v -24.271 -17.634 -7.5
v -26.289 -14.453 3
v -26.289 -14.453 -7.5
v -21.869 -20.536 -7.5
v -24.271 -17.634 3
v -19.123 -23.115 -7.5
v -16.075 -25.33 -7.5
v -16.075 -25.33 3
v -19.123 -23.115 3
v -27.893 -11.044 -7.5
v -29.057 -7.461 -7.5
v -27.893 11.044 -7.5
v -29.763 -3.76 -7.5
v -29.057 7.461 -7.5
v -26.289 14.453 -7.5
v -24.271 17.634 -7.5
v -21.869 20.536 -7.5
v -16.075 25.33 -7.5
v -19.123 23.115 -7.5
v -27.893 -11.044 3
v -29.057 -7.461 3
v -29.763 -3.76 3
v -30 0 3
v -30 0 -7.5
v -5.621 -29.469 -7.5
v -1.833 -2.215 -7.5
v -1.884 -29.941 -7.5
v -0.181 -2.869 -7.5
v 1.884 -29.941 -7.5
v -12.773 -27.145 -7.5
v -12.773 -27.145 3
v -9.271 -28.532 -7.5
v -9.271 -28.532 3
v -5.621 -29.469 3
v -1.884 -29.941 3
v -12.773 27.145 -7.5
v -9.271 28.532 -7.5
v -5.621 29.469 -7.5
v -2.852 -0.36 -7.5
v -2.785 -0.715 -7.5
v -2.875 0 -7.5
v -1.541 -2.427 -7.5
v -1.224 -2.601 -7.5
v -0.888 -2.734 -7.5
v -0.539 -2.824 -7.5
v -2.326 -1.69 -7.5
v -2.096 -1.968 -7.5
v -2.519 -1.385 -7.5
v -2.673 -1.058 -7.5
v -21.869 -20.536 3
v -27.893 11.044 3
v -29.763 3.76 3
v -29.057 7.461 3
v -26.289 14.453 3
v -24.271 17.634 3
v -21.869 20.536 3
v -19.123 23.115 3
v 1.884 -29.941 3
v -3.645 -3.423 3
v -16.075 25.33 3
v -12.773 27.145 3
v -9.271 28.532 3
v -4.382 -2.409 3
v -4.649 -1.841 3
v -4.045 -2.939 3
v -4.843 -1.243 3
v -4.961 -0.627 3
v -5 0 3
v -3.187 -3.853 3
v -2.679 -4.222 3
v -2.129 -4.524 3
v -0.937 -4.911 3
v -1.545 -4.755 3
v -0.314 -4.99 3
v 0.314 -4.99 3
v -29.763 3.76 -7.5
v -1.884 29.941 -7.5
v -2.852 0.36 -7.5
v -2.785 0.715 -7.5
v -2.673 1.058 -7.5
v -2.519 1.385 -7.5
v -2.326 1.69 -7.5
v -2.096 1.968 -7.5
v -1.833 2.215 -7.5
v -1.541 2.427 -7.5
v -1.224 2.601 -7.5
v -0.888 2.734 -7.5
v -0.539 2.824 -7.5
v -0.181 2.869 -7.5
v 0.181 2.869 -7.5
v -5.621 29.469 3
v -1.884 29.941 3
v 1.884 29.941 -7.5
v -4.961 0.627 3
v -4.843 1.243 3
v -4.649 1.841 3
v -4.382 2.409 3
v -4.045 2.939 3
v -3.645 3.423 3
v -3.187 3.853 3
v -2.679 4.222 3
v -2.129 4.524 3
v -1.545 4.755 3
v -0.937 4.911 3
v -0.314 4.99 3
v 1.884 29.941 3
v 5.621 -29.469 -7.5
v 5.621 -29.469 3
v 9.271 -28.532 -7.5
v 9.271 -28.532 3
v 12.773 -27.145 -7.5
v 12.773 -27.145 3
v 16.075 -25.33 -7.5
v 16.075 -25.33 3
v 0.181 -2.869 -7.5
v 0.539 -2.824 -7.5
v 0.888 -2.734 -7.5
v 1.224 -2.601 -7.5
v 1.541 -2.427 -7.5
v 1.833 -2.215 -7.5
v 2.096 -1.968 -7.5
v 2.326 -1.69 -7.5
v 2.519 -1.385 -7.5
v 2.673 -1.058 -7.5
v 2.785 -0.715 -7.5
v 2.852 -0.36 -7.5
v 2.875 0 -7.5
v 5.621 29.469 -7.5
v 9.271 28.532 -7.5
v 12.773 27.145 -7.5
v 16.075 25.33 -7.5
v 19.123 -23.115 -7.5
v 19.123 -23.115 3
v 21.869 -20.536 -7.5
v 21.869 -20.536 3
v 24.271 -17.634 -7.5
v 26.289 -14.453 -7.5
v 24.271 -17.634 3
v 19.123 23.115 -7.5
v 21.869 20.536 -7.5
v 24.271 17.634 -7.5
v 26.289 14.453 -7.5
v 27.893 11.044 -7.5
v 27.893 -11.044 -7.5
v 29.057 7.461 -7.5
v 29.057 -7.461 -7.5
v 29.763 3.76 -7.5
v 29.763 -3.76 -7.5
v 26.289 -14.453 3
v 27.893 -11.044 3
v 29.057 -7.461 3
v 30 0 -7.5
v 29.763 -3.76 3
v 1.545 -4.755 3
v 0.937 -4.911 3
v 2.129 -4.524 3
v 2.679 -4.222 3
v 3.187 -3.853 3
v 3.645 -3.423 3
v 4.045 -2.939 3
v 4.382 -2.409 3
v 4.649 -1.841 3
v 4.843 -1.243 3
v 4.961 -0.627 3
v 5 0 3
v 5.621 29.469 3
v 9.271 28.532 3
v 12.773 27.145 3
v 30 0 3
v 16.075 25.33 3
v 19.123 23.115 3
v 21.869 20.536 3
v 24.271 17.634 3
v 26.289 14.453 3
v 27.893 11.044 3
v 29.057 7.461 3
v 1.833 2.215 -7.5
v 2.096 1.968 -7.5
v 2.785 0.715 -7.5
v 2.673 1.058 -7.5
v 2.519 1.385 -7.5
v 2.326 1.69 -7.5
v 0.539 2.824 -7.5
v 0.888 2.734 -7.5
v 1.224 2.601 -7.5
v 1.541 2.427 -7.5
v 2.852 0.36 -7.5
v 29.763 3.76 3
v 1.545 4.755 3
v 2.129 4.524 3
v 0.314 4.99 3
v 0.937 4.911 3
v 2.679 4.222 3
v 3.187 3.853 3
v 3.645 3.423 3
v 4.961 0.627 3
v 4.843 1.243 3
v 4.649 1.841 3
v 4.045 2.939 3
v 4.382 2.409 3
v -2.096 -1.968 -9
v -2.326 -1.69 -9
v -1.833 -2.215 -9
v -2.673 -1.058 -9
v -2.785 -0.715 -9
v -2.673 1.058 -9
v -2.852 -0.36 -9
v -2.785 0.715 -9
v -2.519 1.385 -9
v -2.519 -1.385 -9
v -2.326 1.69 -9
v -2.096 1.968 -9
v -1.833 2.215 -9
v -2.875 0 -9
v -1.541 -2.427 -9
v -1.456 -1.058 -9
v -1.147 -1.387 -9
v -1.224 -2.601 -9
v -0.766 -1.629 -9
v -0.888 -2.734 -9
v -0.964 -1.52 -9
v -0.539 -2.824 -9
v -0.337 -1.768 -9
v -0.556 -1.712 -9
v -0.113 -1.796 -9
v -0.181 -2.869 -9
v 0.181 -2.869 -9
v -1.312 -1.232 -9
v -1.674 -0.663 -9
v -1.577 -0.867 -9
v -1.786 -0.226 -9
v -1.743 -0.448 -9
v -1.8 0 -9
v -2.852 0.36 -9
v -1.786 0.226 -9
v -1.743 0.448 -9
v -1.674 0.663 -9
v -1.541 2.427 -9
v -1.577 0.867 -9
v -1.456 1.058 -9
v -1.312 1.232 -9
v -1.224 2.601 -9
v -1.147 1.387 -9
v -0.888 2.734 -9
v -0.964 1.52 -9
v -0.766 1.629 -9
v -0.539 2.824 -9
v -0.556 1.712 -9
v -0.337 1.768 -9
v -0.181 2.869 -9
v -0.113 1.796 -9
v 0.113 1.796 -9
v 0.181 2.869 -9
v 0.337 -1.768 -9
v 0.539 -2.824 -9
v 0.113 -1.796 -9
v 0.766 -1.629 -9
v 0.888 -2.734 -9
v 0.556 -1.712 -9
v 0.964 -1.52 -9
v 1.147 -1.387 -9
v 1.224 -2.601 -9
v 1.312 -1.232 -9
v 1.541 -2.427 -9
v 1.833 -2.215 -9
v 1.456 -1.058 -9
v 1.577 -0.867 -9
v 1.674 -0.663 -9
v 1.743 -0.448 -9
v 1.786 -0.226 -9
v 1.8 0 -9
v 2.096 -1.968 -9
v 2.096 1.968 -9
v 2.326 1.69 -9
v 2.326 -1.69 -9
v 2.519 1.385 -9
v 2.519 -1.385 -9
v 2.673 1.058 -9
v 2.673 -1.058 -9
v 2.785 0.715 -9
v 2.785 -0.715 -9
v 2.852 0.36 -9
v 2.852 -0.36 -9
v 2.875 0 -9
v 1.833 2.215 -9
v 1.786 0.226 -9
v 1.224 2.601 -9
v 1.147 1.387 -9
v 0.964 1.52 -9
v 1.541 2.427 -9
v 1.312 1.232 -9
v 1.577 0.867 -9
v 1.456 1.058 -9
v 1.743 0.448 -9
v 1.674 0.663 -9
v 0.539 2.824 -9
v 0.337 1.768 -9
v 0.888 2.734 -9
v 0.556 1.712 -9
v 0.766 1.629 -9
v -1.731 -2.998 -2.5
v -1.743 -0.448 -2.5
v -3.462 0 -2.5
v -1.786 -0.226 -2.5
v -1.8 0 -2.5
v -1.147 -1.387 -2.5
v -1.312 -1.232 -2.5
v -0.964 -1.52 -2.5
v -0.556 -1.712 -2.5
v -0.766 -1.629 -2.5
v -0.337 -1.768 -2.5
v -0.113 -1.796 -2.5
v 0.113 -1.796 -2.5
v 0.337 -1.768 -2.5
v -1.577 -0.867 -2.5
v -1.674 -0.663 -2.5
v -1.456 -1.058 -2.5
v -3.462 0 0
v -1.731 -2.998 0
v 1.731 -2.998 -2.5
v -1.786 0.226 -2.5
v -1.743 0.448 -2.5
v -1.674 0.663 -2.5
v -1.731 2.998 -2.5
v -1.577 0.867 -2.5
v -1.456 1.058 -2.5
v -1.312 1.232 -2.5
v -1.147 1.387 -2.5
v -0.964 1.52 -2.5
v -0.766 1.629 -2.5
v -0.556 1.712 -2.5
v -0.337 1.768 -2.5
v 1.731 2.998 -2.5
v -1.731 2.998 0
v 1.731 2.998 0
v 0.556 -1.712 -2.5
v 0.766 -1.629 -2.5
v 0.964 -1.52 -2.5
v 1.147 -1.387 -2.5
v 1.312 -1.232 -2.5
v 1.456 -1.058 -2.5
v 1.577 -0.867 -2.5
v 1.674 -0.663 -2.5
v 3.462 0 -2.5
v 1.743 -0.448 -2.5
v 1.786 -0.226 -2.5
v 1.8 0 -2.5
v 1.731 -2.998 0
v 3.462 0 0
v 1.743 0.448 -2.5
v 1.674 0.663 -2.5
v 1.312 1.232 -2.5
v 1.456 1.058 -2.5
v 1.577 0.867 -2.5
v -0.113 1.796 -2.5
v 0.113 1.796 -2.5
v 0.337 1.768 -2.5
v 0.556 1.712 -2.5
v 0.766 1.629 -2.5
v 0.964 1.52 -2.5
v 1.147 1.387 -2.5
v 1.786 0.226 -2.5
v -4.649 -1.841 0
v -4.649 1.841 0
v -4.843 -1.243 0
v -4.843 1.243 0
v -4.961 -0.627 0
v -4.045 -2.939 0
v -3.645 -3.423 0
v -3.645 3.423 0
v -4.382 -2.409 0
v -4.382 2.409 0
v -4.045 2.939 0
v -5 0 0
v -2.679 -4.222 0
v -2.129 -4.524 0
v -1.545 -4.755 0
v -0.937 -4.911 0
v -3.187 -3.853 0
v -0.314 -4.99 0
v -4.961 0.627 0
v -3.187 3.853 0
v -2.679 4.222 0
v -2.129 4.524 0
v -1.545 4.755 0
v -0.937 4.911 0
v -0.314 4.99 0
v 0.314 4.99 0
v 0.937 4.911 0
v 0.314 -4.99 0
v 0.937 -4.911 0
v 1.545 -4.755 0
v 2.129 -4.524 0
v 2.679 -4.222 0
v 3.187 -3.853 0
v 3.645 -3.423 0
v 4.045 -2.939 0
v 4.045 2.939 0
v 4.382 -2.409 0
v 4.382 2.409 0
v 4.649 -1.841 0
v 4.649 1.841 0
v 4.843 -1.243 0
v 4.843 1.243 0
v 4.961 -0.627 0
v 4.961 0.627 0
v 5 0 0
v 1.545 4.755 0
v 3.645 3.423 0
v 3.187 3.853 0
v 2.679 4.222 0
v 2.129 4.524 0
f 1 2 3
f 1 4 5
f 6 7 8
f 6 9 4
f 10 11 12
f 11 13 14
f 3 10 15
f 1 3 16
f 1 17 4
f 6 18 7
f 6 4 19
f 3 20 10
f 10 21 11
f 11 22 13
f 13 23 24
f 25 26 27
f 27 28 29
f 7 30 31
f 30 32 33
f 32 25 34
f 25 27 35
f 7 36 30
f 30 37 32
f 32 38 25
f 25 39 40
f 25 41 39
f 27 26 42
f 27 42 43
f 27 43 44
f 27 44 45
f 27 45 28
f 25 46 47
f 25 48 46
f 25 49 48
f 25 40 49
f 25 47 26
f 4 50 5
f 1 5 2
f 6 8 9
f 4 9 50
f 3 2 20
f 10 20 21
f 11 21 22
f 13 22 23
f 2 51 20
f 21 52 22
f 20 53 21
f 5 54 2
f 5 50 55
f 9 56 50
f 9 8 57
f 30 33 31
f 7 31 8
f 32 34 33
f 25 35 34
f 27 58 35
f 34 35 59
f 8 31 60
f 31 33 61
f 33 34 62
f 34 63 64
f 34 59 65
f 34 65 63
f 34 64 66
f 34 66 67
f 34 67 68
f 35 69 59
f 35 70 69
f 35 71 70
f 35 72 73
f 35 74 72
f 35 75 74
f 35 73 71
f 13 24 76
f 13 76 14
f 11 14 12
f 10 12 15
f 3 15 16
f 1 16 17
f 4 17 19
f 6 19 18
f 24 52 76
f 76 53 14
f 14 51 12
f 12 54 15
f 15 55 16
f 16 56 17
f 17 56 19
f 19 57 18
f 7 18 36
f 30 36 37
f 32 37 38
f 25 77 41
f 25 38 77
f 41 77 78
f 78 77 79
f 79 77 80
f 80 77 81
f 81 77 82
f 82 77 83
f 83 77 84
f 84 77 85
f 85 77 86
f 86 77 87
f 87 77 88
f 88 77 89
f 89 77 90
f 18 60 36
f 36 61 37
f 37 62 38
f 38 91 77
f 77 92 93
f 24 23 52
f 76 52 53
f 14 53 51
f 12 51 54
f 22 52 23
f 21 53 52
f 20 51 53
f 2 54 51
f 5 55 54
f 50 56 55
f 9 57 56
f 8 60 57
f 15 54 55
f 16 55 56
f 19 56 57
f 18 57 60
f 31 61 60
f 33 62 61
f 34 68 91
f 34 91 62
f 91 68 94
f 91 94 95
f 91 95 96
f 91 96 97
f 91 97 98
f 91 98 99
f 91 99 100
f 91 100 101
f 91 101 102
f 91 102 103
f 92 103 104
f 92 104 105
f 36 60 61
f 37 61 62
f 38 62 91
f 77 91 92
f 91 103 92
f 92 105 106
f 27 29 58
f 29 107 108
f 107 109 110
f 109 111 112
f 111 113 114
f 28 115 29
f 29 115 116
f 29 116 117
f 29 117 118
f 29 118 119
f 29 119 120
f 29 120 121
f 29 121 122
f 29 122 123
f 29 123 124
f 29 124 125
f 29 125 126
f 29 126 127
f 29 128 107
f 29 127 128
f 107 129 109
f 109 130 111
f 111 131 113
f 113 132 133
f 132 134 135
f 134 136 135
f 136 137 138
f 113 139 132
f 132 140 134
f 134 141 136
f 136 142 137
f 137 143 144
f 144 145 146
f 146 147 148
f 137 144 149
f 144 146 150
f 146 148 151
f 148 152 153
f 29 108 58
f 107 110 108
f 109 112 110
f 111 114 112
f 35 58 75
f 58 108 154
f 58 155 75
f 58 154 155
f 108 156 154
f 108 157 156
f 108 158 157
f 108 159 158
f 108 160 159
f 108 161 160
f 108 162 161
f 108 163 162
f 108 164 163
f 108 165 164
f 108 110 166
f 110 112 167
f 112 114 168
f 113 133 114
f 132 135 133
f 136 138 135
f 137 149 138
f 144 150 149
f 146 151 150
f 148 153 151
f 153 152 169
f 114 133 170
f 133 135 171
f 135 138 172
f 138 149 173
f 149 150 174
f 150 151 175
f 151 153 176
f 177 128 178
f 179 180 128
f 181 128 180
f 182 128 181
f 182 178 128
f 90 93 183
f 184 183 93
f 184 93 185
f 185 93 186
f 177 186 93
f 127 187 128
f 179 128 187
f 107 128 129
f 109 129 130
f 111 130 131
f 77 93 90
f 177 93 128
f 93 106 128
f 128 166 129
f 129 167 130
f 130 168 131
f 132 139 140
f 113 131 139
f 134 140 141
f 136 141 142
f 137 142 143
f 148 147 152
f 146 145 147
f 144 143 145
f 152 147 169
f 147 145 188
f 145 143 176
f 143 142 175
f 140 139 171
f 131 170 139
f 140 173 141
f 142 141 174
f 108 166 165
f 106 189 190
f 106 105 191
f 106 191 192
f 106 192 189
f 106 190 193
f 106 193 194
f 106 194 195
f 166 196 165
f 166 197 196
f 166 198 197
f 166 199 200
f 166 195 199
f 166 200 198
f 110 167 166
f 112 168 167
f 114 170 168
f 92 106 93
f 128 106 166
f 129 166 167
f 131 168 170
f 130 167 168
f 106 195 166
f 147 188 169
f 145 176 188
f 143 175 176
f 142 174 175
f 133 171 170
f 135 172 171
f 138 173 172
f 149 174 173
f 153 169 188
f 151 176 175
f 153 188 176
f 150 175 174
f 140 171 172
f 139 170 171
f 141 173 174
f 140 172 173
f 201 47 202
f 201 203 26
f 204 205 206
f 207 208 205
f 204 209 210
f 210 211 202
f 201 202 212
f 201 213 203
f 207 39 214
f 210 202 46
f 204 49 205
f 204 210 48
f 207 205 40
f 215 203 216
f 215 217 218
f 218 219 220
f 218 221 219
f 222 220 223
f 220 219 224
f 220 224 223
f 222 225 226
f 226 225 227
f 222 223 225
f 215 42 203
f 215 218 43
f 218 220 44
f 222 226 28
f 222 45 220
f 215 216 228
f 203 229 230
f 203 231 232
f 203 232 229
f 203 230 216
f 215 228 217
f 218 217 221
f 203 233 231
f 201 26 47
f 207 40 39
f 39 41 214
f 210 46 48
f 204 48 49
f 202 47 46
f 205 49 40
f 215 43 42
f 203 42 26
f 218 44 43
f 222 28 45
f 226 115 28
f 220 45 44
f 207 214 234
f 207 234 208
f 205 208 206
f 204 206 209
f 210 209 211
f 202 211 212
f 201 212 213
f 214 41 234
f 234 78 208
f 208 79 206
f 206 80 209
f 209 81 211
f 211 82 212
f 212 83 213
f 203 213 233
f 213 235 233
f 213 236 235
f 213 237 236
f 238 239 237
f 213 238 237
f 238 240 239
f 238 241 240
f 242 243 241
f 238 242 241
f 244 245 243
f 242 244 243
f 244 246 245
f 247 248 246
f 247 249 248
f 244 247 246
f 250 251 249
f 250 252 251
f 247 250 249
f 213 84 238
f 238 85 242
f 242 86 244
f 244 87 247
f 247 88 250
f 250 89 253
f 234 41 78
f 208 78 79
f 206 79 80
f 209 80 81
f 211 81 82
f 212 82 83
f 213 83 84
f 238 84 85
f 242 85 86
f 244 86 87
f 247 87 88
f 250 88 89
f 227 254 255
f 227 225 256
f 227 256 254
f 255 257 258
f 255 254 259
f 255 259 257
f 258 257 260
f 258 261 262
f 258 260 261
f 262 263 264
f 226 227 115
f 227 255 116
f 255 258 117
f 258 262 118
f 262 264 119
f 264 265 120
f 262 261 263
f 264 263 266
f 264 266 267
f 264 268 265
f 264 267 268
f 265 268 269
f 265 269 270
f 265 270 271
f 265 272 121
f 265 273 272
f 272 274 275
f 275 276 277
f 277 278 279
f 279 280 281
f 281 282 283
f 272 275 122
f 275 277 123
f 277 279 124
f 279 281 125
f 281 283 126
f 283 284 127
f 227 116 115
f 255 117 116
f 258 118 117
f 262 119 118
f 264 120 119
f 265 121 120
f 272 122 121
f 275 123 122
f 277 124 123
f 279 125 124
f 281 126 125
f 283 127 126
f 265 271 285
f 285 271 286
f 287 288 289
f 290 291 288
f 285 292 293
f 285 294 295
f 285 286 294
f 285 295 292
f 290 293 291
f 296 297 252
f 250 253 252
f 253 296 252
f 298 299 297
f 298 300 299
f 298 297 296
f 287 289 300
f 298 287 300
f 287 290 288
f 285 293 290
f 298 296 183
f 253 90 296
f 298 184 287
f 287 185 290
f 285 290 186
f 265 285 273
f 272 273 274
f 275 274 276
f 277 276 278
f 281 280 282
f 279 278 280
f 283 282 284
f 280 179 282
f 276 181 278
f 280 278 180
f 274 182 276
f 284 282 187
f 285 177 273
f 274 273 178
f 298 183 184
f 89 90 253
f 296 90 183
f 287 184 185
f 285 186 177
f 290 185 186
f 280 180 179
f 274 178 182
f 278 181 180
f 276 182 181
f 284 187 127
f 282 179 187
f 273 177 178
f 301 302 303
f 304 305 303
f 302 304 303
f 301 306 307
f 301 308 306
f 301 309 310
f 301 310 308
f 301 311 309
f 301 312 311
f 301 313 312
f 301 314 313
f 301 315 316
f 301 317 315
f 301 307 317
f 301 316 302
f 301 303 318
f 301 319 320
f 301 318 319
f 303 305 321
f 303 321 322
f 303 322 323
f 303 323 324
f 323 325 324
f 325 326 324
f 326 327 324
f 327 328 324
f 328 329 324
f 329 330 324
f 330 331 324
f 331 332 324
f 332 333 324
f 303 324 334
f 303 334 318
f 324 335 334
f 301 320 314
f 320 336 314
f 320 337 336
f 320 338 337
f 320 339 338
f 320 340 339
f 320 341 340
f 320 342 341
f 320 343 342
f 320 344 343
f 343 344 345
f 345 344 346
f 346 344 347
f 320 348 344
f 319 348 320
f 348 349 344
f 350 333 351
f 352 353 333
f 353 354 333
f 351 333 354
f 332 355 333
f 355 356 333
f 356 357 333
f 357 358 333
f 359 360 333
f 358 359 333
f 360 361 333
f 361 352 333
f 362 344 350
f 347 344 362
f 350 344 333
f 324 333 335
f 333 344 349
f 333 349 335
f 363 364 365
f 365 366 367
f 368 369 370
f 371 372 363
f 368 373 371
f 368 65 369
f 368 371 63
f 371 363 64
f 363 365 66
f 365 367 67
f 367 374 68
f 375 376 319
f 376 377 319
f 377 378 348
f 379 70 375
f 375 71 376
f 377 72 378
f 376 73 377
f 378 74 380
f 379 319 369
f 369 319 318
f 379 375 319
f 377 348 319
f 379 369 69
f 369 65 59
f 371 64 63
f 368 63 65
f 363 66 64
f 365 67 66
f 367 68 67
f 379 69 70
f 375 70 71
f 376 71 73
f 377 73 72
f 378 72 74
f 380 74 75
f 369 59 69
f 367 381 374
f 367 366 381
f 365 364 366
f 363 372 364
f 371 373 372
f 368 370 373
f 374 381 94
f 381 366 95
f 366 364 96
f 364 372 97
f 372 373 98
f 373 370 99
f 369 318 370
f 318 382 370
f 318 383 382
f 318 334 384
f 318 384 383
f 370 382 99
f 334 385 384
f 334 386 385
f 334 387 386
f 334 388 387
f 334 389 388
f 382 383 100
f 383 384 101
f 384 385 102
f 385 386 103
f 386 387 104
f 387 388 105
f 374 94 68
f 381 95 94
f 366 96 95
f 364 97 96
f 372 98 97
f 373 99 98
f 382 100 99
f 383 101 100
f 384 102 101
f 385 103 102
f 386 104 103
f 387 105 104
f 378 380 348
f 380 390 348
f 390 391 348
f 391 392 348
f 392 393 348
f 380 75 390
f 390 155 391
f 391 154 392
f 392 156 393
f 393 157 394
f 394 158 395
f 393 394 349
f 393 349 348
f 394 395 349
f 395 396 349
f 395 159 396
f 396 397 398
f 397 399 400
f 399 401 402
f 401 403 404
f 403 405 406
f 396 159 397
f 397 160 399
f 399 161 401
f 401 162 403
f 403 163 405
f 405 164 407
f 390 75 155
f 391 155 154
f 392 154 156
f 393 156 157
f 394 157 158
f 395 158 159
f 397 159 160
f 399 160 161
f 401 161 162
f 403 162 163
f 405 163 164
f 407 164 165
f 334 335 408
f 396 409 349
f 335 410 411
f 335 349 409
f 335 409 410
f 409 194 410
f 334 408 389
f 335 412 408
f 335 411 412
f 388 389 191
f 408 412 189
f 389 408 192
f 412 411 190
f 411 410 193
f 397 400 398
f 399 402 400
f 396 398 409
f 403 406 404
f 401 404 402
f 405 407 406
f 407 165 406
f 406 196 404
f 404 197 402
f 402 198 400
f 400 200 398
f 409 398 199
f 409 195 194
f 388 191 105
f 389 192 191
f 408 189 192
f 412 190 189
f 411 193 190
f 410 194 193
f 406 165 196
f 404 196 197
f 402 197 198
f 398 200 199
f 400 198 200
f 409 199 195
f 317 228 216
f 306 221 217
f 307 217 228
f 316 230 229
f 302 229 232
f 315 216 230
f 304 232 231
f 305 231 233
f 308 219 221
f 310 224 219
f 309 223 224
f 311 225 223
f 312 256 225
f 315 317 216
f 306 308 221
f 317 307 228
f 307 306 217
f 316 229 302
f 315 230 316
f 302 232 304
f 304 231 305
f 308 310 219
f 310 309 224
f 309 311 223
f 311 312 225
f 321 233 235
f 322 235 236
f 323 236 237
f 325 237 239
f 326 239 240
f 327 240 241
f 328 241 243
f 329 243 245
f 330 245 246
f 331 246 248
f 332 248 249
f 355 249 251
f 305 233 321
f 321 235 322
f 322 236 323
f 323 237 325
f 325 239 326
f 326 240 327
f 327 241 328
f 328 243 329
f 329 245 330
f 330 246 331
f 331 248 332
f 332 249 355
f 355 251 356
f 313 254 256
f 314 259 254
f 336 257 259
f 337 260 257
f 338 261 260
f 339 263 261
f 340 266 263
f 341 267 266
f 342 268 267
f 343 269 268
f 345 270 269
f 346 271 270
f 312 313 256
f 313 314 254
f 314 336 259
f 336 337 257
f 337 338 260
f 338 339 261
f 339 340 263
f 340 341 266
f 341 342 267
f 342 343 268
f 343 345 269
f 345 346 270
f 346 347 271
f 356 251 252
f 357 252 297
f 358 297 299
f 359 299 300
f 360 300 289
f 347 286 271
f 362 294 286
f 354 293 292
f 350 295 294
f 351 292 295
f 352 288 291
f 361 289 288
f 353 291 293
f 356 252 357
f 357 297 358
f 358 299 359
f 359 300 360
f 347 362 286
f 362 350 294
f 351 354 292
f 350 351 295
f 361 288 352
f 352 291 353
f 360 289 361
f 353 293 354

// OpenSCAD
$fn = 50;

difference() {
	union() {
		translate(v = [0, 0, -7.5]) {
			cylinder(h = 10.5, r = 30.0);
		}
		#translate(v = [0, 0, -9.0]) {
			cylinder(h = 9, r = 2.875);
		}
	}
	union() {
		translate(v = [0, 0, 0]) {
			rotate(a = [0, 0, 0]) {
				difference() {
					union() {
						translate(v = [0, 0, -2.5]) {
							linear_extrude(height = 2.5) {
								polygon(points = [[3.4619999999999997, 0.0], [1.7310000000000003, 2.9981799479017264], [-1.7309999999999992, 2.9981799479017264], [-3.4619999999999997, 4.2397272186481365e-16], [-1.7310000000000014, -2.998179947901726], [1.7309999999999977, -2.9981799479017277]]);
							}
						}
					}
					union();
				}
			}
		}
		#cylinder(h = 3, r = 5.0);
		#translate(v = [0, 0, -100.0]) {
			cylinder(h = 200, r = 1.8);
		}
	}
}
